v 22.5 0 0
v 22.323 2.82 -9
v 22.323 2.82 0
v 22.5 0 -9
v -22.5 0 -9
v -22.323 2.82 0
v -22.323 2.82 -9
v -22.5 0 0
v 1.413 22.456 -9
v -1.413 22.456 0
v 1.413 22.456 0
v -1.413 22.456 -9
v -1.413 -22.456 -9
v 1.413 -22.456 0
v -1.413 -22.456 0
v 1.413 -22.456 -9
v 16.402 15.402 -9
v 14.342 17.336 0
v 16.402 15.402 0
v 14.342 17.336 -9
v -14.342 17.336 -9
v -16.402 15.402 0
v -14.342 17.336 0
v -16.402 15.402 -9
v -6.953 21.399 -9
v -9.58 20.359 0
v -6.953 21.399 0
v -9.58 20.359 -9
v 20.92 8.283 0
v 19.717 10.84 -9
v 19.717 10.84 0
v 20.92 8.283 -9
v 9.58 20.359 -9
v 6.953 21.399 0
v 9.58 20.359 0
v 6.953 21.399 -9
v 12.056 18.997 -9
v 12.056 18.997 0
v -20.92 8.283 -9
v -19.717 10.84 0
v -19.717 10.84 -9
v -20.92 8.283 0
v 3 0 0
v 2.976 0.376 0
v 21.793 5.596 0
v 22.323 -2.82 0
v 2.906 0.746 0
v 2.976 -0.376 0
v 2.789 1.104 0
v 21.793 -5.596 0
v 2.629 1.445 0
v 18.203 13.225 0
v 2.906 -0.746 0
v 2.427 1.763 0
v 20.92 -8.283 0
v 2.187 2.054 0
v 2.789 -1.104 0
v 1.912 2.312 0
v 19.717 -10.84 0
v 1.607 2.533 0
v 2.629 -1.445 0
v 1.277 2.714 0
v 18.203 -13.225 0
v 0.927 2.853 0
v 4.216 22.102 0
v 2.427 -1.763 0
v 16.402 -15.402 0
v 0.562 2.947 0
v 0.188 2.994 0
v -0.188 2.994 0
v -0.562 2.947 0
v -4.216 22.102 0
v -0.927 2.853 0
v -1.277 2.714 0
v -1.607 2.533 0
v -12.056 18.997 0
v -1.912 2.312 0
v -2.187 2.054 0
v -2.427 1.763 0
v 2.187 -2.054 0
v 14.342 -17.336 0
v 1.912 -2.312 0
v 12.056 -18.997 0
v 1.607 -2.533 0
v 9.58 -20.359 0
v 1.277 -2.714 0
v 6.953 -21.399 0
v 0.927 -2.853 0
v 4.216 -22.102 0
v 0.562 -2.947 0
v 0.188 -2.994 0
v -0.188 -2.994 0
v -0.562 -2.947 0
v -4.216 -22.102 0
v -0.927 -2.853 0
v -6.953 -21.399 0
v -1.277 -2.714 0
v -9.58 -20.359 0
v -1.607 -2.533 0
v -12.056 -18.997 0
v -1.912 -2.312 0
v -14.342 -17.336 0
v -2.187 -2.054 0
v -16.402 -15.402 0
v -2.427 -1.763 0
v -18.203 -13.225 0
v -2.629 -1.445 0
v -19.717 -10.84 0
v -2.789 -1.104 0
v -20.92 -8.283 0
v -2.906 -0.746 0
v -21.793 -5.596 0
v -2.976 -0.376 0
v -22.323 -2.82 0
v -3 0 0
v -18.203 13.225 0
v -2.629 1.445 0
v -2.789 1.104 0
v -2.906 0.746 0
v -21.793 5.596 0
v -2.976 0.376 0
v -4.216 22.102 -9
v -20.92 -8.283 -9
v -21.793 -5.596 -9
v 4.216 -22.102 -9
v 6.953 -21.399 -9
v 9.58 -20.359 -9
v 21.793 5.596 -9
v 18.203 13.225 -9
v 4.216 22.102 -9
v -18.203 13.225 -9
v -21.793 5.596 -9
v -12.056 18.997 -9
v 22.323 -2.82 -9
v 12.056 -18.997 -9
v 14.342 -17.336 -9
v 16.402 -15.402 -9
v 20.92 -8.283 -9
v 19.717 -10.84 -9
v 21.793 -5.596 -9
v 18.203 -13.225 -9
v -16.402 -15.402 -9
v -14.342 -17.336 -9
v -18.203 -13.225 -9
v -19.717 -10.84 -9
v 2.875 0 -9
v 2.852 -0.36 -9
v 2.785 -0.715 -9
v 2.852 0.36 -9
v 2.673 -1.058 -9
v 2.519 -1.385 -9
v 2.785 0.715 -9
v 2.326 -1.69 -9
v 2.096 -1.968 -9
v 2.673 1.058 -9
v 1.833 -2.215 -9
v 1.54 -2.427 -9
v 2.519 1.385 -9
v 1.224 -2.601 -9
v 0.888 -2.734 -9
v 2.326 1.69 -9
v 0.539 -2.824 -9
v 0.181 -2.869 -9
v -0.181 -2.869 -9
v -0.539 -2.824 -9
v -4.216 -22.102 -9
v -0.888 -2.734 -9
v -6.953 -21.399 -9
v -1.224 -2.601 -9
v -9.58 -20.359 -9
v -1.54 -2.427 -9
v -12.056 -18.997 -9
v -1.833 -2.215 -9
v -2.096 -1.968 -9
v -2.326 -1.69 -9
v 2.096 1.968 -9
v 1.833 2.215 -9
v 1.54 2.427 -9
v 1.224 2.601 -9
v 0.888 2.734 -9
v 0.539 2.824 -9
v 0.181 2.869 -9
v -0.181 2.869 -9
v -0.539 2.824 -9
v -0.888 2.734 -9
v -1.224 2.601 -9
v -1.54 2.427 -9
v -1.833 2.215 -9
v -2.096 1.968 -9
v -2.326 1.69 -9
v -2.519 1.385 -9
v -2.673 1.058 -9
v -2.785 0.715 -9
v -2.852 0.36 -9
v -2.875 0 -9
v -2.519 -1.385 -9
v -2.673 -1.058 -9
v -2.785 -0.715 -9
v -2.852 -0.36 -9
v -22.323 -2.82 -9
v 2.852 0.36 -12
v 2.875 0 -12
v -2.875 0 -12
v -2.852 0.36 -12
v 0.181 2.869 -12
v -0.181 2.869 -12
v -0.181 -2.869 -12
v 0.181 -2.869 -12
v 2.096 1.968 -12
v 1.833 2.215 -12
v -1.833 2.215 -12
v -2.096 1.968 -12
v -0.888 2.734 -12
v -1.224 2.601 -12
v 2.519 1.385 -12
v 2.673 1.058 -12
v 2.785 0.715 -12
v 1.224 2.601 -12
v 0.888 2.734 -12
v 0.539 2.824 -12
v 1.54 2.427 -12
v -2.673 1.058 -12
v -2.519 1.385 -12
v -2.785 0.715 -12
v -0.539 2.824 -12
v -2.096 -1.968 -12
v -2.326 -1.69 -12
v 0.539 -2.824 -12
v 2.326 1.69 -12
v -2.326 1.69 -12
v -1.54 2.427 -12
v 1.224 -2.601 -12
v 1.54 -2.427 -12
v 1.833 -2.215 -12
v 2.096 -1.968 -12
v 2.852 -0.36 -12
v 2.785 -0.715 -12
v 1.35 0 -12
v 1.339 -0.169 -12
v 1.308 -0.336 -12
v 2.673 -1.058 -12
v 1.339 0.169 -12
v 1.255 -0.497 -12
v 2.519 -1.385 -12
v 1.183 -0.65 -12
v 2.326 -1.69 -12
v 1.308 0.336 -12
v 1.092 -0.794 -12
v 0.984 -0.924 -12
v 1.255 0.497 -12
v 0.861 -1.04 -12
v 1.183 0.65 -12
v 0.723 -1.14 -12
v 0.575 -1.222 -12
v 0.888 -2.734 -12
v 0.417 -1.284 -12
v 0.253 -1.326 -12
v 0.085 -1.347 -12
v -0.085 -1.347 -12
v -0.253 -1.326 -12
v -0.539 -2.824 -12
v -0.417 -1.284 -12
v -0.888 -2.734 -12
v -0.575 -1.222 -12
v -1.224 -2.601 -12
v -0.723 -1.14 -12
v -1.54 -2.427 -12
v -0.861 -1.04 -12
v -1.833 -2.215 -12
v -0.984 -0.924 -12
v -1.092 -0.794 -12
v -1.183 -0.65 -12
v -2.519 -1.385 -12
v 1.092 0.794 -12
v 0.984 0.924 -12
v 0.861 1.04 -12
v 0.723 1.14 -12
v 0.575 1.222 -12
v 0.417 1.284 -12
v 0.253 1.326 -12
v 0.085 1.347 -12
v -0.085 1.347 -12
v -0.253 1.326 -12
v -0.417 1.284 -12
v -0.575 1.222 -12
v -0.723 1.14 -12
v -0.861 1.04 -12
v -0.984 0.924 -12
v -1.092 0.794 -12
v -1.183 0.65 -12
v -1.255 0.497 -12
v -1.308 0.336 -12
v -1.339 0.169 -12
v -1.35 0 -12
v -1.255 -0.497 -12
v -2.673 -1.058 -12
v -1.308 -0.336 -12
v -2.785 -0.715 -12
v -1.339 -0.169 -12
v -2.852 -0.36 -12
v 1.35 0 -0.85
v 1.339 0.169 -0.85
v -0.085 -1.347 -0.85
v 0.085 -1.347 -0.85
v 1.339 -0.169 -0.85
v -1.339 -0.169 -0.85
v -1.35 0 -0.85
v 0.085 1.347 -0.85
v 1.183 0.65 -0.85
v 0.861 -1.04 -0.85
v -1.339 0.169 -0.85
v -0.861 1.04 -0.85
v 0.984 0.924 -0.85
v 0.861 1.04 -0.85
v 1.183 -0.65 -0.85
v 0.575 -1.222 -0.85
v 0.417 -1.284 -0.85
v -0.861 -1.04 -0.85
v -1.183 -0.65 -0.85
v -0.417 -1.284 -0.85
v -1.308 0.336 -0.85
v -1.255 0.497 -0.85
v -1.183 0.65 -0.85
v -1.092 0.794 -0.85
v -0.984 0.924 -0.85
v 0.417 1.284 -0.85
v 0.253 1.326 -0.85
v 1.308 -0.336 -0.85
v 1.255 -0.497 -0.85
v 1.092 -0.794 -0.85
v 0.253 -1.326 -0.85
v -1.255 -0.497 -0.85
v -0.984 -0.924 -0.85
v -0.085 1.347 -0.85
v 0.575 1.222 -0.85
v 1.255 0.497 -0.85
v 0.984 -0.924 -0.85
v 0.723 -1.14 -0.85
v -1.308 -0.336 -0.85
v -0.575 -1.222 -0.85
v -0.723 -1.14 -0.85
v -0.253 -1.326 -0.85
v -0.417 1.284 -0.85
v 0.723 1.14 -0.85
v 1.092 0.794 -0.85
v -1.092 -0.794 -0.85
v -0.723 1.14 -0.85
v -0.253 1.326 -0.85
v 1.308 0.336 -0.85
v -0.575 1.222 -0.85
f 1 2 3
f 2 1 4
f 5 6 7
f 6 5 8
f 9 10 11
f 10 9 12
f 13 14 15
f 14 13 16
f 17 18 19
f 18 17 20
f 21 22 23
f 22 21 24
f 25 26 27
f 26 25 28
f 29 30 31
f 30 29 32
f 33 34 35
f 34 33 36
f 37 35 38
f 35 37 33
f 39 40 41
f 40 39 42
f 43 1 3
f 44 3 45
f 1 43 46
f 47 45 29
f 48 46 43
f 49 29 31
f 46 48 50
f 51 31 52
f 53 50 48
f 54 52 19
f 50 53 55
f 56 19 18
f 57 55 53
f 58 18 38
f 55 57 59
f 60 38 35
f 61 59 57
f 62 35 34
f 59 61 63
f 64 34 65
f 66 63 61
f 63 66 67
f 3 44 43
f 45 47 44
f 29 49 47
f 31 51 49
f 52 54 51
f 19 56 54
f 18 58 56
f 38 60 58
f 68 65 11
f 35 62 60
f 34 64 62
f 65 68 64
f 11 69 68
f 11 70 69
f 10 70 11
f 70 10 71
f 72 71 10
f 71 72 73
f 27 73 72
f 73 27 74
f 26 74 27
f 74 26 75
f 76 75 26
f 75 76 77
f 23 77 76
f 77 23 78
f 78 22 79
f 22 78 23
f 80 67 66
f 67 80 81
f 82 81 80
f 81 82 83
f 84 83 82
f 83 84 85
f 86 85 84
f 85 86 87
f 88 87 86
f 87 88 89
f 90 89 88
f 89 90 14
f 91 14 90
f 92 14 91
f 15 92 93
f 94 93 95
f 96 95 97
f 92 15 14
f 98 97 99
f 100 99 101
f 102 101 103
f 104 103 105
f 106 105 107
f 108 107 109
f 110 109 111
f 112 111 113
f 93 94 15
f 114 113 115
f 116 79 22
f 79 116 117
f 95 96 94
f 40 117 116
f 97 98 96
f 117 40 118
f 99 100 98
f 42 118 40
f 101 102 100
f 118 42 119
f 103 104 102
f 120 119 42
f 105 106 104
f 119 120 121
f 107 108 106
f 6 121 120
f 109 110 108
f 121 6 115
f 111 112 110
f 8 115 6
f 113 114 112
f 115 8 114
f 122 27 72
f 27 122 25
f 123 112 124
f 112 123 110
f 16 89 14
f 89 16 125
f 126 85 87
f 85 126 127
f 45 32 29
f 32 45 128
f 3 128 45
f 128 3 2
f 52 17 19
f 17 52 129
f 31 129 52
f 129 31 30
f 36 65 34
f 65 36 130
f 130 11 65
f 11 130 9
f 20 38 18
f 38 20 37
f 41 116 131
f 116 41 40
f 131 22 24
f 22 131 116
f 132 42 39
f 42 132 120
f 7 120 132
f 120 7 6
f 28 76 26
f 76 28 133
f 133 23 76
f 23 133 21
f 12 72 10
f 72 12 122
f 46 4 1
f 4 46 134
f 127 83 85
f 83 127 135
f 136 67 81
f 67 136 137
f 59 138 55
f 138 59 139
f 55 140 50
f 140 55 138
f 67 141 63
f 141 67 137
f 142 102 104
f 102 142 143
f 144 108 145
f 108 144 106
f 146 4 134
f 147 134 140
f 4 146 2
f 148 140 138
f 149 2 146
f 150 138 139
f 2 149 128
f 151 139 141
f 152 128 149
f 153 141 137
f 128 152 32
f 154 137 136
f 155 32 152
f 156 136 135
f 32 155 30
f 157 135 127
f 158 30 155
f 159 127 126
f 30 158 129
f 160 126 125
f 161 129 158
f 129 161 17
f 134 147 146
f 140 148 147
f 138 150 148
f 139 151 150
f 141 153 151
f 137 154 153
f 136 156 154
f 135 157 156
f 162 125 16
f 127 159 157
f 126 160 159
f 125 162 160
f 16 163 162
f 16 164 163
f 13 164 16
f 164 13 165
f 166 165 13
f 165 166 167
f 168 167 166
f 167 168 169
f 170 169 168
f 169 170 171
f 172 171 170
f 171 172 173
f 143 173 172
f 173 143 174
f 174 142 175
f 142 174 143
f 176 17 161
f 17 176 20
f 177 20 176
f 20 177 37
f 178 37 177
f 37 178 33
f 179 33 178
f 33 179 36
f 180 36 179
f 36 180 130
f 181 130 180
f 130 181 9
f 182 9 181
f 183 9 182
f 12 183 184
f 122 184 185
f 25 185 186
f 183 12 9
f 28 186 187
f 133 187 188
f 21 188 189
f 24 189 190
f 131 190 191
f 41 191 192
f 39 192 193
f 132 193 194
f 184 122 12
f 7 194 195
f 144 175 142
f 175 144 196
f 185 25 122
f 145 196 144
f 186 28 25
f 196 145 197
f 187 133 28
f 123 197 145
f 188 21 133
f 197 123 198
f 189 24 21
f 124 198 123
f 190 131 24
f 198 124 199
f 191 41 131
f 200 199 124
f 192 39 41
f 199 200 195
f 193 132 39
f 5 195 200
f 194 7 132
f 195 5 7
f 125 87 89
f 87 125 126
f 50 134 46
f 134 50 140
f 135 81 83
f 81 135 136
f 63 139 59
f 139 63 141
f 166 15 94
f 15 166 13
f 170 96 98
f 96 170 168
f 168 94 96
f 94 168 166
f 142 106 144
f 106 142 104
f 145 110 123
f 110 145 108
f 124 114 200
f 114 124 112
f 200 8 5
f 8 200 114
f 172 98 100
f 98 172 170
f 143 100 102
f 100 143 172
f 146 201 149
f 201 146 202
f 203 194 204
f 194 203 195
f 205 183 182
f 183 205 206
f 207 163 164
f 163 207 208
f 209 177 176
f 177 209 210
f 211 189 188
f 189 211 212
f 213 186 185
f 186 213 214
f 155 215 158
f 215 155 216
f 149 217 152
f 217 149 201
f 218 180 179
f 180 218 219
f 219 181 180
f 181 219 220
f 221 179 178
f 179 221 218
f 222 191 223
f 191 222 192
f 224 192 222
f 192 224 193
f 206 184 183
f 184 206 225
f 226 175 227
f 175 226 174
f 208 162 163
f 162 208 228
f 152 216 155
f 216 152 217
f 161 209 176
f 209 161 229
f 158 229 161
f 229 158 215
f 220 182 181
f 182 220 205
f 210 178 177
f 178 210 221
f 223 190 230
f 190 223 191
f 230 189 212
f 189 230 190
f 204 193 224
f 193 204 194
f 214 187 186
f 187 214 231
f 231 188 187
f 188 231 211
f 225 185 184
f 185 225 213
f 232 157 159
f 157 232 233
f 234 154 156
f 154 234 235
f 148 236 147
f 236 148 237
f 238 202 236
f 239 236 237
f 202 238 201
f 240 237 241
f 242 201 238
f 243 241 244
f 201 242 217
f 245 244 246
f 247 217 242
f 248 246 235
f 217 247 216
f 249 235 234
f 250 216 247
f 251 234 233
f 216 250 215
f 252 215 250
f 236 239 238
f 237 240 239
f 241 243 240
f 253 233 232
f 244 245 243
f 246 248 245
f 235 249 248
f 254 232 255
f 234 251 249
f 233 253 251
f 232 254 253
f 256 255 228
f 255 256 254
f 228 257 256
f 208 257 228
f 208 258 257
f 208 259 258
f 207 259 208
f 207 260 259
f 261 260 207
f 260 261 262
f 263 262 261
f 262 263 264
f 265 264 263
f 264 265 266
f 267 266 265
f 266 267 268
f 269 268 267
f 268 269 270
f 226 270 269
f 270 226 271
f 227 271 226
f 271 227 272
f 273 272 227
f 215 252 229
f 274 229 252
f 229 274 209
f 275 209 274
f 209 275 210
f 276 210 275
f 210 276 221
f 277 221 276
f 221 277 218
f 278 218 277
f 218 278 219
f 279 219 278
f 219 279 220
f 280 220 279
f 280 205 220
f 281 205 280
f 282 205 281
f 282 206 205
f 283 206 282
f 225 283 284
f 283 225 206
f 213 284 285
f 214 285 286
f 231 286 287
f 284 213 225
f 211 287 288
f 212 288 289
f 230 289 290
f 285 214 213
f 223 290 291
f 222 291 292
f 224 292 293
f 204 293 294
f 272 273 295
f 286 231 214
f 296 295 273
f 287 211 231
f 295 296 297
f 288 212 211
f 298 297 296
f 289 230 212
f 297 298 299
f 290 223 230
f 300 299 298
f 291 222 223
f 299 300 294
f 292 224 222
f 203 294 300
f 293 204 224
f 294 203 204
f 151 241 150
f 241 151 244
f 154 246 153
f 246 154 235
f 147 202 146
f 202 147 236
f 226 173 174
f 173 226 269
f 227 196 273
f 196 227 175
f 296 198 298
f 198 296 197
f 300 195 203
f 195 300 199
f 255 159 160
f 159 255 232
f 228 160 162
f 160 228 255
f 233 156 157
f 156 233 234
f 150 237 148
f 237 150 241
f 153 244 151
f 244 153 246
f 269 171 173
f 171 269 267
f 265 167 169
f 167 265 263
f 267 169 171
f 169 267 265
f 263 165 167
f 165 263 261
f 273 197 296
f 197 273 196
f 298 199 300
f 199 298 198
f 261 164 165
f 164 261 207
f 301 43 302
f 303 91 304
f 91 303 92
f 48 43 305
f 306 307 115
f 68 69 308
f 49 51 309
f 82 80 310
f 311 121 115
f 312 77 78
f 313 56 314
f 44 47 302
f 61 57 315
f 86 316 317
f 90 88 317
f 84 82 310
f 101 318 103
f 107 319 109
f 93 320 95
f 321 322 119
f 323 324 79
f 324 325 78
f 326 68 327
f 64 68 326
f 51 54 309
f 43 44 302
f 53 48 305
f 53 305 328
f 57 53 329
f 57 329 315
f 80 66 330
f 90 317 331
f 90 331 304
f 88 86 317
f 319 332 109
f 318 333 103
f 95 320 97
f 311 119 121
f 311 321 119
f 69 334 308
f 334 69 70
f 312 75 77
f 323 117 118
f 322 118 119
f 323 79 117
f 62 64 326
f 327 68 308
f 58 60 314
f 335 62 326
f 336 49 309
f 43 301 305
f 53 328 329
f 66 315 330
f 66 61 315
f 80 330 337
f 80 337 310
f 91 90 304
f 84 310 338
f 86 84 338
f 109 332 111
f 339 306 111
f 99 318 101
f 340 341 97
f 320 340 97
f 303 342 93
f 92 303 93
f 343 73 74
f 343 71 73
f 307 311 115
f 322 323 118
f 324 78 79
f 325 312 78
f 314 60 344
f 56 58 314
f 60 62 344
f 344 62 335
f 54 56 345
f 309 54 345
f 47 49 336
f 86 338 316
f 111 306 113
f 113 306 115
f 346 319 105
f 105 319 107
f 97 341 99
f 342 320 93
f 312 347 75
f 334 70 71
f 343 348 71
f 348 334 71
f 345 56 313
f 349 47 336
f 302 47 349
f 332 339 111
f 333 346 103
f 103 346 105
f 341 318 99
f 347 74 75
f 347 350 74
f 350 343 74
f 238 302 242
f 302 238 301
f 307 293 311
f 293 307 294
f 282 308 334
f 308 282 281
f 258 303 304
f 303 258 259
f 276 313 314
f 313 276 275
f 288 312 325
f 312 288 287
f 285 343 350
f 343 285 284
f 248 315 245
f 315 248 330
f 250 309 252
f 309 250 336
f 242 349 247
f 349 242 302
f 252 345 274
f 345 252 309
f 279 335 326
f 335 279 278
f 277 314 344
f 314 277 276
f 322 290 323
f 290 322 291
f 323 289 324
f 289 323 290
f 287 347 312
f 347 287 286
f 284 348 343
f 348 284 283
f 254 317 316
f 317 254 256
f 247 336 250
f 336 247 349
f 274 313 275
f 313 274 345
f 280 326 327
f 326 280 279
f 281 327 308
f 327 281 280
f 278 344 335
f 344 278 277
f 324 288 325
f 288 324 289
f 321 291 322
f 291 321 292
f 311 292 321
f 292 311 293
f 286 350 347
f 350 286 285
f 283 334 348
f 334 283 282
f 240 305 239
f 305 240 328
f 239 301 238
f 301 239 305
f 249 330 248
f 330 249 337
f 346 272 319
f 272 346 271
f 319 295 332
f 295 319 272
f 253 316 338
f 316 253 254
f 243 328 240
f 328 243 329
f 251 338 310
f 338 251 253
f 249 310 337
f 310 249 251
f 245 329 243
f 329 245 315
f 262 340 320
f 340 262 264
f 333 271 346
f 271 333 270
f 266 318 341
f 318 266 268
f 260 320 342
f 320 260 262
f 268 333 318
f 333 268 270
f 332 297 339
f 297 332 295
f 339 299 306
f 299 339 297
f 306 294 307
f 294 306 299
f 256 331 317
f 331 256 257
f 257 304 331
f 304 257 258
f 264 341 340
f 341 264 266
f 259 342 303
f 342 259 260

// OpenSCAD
$fn = 50;


difference() {
	union() {
		translate(v = [0, 0, -9.0000000000]) {
			cylinder(h = 9, r = 22.5000000000);
		}
		translate(v = [0, 0, -12.0000000000]) {
			cylinder(h = 12, r = 2.8750000000);
		}
	}
	union() {
		translate(v = [0, 0, 0]) {
			rotate(a = [0, 0, 0]) {
				difference() {
					union() {
						translate(v = [0, 0, -12.0000000000]) {
							cylinder(h = 12, r = 1.0000000000);
						}
						translate(v = [0, 0, -0.8500000000]) {
							cylinder(h = 0.8500000000, r1 = 1.3500000000, r2 = 3.0000000000);
						}
						translate(v = [0, 0, -12.0000000000]) {
							cylinder(h = 12, r = 1.3500000000);
						}
						translate(v = [0, 0, -12.0000000000]) {
							cylinder(h = 12, r = 1.0000000000);
						}
					}
					union();
				}
			}
		}
	}
}
